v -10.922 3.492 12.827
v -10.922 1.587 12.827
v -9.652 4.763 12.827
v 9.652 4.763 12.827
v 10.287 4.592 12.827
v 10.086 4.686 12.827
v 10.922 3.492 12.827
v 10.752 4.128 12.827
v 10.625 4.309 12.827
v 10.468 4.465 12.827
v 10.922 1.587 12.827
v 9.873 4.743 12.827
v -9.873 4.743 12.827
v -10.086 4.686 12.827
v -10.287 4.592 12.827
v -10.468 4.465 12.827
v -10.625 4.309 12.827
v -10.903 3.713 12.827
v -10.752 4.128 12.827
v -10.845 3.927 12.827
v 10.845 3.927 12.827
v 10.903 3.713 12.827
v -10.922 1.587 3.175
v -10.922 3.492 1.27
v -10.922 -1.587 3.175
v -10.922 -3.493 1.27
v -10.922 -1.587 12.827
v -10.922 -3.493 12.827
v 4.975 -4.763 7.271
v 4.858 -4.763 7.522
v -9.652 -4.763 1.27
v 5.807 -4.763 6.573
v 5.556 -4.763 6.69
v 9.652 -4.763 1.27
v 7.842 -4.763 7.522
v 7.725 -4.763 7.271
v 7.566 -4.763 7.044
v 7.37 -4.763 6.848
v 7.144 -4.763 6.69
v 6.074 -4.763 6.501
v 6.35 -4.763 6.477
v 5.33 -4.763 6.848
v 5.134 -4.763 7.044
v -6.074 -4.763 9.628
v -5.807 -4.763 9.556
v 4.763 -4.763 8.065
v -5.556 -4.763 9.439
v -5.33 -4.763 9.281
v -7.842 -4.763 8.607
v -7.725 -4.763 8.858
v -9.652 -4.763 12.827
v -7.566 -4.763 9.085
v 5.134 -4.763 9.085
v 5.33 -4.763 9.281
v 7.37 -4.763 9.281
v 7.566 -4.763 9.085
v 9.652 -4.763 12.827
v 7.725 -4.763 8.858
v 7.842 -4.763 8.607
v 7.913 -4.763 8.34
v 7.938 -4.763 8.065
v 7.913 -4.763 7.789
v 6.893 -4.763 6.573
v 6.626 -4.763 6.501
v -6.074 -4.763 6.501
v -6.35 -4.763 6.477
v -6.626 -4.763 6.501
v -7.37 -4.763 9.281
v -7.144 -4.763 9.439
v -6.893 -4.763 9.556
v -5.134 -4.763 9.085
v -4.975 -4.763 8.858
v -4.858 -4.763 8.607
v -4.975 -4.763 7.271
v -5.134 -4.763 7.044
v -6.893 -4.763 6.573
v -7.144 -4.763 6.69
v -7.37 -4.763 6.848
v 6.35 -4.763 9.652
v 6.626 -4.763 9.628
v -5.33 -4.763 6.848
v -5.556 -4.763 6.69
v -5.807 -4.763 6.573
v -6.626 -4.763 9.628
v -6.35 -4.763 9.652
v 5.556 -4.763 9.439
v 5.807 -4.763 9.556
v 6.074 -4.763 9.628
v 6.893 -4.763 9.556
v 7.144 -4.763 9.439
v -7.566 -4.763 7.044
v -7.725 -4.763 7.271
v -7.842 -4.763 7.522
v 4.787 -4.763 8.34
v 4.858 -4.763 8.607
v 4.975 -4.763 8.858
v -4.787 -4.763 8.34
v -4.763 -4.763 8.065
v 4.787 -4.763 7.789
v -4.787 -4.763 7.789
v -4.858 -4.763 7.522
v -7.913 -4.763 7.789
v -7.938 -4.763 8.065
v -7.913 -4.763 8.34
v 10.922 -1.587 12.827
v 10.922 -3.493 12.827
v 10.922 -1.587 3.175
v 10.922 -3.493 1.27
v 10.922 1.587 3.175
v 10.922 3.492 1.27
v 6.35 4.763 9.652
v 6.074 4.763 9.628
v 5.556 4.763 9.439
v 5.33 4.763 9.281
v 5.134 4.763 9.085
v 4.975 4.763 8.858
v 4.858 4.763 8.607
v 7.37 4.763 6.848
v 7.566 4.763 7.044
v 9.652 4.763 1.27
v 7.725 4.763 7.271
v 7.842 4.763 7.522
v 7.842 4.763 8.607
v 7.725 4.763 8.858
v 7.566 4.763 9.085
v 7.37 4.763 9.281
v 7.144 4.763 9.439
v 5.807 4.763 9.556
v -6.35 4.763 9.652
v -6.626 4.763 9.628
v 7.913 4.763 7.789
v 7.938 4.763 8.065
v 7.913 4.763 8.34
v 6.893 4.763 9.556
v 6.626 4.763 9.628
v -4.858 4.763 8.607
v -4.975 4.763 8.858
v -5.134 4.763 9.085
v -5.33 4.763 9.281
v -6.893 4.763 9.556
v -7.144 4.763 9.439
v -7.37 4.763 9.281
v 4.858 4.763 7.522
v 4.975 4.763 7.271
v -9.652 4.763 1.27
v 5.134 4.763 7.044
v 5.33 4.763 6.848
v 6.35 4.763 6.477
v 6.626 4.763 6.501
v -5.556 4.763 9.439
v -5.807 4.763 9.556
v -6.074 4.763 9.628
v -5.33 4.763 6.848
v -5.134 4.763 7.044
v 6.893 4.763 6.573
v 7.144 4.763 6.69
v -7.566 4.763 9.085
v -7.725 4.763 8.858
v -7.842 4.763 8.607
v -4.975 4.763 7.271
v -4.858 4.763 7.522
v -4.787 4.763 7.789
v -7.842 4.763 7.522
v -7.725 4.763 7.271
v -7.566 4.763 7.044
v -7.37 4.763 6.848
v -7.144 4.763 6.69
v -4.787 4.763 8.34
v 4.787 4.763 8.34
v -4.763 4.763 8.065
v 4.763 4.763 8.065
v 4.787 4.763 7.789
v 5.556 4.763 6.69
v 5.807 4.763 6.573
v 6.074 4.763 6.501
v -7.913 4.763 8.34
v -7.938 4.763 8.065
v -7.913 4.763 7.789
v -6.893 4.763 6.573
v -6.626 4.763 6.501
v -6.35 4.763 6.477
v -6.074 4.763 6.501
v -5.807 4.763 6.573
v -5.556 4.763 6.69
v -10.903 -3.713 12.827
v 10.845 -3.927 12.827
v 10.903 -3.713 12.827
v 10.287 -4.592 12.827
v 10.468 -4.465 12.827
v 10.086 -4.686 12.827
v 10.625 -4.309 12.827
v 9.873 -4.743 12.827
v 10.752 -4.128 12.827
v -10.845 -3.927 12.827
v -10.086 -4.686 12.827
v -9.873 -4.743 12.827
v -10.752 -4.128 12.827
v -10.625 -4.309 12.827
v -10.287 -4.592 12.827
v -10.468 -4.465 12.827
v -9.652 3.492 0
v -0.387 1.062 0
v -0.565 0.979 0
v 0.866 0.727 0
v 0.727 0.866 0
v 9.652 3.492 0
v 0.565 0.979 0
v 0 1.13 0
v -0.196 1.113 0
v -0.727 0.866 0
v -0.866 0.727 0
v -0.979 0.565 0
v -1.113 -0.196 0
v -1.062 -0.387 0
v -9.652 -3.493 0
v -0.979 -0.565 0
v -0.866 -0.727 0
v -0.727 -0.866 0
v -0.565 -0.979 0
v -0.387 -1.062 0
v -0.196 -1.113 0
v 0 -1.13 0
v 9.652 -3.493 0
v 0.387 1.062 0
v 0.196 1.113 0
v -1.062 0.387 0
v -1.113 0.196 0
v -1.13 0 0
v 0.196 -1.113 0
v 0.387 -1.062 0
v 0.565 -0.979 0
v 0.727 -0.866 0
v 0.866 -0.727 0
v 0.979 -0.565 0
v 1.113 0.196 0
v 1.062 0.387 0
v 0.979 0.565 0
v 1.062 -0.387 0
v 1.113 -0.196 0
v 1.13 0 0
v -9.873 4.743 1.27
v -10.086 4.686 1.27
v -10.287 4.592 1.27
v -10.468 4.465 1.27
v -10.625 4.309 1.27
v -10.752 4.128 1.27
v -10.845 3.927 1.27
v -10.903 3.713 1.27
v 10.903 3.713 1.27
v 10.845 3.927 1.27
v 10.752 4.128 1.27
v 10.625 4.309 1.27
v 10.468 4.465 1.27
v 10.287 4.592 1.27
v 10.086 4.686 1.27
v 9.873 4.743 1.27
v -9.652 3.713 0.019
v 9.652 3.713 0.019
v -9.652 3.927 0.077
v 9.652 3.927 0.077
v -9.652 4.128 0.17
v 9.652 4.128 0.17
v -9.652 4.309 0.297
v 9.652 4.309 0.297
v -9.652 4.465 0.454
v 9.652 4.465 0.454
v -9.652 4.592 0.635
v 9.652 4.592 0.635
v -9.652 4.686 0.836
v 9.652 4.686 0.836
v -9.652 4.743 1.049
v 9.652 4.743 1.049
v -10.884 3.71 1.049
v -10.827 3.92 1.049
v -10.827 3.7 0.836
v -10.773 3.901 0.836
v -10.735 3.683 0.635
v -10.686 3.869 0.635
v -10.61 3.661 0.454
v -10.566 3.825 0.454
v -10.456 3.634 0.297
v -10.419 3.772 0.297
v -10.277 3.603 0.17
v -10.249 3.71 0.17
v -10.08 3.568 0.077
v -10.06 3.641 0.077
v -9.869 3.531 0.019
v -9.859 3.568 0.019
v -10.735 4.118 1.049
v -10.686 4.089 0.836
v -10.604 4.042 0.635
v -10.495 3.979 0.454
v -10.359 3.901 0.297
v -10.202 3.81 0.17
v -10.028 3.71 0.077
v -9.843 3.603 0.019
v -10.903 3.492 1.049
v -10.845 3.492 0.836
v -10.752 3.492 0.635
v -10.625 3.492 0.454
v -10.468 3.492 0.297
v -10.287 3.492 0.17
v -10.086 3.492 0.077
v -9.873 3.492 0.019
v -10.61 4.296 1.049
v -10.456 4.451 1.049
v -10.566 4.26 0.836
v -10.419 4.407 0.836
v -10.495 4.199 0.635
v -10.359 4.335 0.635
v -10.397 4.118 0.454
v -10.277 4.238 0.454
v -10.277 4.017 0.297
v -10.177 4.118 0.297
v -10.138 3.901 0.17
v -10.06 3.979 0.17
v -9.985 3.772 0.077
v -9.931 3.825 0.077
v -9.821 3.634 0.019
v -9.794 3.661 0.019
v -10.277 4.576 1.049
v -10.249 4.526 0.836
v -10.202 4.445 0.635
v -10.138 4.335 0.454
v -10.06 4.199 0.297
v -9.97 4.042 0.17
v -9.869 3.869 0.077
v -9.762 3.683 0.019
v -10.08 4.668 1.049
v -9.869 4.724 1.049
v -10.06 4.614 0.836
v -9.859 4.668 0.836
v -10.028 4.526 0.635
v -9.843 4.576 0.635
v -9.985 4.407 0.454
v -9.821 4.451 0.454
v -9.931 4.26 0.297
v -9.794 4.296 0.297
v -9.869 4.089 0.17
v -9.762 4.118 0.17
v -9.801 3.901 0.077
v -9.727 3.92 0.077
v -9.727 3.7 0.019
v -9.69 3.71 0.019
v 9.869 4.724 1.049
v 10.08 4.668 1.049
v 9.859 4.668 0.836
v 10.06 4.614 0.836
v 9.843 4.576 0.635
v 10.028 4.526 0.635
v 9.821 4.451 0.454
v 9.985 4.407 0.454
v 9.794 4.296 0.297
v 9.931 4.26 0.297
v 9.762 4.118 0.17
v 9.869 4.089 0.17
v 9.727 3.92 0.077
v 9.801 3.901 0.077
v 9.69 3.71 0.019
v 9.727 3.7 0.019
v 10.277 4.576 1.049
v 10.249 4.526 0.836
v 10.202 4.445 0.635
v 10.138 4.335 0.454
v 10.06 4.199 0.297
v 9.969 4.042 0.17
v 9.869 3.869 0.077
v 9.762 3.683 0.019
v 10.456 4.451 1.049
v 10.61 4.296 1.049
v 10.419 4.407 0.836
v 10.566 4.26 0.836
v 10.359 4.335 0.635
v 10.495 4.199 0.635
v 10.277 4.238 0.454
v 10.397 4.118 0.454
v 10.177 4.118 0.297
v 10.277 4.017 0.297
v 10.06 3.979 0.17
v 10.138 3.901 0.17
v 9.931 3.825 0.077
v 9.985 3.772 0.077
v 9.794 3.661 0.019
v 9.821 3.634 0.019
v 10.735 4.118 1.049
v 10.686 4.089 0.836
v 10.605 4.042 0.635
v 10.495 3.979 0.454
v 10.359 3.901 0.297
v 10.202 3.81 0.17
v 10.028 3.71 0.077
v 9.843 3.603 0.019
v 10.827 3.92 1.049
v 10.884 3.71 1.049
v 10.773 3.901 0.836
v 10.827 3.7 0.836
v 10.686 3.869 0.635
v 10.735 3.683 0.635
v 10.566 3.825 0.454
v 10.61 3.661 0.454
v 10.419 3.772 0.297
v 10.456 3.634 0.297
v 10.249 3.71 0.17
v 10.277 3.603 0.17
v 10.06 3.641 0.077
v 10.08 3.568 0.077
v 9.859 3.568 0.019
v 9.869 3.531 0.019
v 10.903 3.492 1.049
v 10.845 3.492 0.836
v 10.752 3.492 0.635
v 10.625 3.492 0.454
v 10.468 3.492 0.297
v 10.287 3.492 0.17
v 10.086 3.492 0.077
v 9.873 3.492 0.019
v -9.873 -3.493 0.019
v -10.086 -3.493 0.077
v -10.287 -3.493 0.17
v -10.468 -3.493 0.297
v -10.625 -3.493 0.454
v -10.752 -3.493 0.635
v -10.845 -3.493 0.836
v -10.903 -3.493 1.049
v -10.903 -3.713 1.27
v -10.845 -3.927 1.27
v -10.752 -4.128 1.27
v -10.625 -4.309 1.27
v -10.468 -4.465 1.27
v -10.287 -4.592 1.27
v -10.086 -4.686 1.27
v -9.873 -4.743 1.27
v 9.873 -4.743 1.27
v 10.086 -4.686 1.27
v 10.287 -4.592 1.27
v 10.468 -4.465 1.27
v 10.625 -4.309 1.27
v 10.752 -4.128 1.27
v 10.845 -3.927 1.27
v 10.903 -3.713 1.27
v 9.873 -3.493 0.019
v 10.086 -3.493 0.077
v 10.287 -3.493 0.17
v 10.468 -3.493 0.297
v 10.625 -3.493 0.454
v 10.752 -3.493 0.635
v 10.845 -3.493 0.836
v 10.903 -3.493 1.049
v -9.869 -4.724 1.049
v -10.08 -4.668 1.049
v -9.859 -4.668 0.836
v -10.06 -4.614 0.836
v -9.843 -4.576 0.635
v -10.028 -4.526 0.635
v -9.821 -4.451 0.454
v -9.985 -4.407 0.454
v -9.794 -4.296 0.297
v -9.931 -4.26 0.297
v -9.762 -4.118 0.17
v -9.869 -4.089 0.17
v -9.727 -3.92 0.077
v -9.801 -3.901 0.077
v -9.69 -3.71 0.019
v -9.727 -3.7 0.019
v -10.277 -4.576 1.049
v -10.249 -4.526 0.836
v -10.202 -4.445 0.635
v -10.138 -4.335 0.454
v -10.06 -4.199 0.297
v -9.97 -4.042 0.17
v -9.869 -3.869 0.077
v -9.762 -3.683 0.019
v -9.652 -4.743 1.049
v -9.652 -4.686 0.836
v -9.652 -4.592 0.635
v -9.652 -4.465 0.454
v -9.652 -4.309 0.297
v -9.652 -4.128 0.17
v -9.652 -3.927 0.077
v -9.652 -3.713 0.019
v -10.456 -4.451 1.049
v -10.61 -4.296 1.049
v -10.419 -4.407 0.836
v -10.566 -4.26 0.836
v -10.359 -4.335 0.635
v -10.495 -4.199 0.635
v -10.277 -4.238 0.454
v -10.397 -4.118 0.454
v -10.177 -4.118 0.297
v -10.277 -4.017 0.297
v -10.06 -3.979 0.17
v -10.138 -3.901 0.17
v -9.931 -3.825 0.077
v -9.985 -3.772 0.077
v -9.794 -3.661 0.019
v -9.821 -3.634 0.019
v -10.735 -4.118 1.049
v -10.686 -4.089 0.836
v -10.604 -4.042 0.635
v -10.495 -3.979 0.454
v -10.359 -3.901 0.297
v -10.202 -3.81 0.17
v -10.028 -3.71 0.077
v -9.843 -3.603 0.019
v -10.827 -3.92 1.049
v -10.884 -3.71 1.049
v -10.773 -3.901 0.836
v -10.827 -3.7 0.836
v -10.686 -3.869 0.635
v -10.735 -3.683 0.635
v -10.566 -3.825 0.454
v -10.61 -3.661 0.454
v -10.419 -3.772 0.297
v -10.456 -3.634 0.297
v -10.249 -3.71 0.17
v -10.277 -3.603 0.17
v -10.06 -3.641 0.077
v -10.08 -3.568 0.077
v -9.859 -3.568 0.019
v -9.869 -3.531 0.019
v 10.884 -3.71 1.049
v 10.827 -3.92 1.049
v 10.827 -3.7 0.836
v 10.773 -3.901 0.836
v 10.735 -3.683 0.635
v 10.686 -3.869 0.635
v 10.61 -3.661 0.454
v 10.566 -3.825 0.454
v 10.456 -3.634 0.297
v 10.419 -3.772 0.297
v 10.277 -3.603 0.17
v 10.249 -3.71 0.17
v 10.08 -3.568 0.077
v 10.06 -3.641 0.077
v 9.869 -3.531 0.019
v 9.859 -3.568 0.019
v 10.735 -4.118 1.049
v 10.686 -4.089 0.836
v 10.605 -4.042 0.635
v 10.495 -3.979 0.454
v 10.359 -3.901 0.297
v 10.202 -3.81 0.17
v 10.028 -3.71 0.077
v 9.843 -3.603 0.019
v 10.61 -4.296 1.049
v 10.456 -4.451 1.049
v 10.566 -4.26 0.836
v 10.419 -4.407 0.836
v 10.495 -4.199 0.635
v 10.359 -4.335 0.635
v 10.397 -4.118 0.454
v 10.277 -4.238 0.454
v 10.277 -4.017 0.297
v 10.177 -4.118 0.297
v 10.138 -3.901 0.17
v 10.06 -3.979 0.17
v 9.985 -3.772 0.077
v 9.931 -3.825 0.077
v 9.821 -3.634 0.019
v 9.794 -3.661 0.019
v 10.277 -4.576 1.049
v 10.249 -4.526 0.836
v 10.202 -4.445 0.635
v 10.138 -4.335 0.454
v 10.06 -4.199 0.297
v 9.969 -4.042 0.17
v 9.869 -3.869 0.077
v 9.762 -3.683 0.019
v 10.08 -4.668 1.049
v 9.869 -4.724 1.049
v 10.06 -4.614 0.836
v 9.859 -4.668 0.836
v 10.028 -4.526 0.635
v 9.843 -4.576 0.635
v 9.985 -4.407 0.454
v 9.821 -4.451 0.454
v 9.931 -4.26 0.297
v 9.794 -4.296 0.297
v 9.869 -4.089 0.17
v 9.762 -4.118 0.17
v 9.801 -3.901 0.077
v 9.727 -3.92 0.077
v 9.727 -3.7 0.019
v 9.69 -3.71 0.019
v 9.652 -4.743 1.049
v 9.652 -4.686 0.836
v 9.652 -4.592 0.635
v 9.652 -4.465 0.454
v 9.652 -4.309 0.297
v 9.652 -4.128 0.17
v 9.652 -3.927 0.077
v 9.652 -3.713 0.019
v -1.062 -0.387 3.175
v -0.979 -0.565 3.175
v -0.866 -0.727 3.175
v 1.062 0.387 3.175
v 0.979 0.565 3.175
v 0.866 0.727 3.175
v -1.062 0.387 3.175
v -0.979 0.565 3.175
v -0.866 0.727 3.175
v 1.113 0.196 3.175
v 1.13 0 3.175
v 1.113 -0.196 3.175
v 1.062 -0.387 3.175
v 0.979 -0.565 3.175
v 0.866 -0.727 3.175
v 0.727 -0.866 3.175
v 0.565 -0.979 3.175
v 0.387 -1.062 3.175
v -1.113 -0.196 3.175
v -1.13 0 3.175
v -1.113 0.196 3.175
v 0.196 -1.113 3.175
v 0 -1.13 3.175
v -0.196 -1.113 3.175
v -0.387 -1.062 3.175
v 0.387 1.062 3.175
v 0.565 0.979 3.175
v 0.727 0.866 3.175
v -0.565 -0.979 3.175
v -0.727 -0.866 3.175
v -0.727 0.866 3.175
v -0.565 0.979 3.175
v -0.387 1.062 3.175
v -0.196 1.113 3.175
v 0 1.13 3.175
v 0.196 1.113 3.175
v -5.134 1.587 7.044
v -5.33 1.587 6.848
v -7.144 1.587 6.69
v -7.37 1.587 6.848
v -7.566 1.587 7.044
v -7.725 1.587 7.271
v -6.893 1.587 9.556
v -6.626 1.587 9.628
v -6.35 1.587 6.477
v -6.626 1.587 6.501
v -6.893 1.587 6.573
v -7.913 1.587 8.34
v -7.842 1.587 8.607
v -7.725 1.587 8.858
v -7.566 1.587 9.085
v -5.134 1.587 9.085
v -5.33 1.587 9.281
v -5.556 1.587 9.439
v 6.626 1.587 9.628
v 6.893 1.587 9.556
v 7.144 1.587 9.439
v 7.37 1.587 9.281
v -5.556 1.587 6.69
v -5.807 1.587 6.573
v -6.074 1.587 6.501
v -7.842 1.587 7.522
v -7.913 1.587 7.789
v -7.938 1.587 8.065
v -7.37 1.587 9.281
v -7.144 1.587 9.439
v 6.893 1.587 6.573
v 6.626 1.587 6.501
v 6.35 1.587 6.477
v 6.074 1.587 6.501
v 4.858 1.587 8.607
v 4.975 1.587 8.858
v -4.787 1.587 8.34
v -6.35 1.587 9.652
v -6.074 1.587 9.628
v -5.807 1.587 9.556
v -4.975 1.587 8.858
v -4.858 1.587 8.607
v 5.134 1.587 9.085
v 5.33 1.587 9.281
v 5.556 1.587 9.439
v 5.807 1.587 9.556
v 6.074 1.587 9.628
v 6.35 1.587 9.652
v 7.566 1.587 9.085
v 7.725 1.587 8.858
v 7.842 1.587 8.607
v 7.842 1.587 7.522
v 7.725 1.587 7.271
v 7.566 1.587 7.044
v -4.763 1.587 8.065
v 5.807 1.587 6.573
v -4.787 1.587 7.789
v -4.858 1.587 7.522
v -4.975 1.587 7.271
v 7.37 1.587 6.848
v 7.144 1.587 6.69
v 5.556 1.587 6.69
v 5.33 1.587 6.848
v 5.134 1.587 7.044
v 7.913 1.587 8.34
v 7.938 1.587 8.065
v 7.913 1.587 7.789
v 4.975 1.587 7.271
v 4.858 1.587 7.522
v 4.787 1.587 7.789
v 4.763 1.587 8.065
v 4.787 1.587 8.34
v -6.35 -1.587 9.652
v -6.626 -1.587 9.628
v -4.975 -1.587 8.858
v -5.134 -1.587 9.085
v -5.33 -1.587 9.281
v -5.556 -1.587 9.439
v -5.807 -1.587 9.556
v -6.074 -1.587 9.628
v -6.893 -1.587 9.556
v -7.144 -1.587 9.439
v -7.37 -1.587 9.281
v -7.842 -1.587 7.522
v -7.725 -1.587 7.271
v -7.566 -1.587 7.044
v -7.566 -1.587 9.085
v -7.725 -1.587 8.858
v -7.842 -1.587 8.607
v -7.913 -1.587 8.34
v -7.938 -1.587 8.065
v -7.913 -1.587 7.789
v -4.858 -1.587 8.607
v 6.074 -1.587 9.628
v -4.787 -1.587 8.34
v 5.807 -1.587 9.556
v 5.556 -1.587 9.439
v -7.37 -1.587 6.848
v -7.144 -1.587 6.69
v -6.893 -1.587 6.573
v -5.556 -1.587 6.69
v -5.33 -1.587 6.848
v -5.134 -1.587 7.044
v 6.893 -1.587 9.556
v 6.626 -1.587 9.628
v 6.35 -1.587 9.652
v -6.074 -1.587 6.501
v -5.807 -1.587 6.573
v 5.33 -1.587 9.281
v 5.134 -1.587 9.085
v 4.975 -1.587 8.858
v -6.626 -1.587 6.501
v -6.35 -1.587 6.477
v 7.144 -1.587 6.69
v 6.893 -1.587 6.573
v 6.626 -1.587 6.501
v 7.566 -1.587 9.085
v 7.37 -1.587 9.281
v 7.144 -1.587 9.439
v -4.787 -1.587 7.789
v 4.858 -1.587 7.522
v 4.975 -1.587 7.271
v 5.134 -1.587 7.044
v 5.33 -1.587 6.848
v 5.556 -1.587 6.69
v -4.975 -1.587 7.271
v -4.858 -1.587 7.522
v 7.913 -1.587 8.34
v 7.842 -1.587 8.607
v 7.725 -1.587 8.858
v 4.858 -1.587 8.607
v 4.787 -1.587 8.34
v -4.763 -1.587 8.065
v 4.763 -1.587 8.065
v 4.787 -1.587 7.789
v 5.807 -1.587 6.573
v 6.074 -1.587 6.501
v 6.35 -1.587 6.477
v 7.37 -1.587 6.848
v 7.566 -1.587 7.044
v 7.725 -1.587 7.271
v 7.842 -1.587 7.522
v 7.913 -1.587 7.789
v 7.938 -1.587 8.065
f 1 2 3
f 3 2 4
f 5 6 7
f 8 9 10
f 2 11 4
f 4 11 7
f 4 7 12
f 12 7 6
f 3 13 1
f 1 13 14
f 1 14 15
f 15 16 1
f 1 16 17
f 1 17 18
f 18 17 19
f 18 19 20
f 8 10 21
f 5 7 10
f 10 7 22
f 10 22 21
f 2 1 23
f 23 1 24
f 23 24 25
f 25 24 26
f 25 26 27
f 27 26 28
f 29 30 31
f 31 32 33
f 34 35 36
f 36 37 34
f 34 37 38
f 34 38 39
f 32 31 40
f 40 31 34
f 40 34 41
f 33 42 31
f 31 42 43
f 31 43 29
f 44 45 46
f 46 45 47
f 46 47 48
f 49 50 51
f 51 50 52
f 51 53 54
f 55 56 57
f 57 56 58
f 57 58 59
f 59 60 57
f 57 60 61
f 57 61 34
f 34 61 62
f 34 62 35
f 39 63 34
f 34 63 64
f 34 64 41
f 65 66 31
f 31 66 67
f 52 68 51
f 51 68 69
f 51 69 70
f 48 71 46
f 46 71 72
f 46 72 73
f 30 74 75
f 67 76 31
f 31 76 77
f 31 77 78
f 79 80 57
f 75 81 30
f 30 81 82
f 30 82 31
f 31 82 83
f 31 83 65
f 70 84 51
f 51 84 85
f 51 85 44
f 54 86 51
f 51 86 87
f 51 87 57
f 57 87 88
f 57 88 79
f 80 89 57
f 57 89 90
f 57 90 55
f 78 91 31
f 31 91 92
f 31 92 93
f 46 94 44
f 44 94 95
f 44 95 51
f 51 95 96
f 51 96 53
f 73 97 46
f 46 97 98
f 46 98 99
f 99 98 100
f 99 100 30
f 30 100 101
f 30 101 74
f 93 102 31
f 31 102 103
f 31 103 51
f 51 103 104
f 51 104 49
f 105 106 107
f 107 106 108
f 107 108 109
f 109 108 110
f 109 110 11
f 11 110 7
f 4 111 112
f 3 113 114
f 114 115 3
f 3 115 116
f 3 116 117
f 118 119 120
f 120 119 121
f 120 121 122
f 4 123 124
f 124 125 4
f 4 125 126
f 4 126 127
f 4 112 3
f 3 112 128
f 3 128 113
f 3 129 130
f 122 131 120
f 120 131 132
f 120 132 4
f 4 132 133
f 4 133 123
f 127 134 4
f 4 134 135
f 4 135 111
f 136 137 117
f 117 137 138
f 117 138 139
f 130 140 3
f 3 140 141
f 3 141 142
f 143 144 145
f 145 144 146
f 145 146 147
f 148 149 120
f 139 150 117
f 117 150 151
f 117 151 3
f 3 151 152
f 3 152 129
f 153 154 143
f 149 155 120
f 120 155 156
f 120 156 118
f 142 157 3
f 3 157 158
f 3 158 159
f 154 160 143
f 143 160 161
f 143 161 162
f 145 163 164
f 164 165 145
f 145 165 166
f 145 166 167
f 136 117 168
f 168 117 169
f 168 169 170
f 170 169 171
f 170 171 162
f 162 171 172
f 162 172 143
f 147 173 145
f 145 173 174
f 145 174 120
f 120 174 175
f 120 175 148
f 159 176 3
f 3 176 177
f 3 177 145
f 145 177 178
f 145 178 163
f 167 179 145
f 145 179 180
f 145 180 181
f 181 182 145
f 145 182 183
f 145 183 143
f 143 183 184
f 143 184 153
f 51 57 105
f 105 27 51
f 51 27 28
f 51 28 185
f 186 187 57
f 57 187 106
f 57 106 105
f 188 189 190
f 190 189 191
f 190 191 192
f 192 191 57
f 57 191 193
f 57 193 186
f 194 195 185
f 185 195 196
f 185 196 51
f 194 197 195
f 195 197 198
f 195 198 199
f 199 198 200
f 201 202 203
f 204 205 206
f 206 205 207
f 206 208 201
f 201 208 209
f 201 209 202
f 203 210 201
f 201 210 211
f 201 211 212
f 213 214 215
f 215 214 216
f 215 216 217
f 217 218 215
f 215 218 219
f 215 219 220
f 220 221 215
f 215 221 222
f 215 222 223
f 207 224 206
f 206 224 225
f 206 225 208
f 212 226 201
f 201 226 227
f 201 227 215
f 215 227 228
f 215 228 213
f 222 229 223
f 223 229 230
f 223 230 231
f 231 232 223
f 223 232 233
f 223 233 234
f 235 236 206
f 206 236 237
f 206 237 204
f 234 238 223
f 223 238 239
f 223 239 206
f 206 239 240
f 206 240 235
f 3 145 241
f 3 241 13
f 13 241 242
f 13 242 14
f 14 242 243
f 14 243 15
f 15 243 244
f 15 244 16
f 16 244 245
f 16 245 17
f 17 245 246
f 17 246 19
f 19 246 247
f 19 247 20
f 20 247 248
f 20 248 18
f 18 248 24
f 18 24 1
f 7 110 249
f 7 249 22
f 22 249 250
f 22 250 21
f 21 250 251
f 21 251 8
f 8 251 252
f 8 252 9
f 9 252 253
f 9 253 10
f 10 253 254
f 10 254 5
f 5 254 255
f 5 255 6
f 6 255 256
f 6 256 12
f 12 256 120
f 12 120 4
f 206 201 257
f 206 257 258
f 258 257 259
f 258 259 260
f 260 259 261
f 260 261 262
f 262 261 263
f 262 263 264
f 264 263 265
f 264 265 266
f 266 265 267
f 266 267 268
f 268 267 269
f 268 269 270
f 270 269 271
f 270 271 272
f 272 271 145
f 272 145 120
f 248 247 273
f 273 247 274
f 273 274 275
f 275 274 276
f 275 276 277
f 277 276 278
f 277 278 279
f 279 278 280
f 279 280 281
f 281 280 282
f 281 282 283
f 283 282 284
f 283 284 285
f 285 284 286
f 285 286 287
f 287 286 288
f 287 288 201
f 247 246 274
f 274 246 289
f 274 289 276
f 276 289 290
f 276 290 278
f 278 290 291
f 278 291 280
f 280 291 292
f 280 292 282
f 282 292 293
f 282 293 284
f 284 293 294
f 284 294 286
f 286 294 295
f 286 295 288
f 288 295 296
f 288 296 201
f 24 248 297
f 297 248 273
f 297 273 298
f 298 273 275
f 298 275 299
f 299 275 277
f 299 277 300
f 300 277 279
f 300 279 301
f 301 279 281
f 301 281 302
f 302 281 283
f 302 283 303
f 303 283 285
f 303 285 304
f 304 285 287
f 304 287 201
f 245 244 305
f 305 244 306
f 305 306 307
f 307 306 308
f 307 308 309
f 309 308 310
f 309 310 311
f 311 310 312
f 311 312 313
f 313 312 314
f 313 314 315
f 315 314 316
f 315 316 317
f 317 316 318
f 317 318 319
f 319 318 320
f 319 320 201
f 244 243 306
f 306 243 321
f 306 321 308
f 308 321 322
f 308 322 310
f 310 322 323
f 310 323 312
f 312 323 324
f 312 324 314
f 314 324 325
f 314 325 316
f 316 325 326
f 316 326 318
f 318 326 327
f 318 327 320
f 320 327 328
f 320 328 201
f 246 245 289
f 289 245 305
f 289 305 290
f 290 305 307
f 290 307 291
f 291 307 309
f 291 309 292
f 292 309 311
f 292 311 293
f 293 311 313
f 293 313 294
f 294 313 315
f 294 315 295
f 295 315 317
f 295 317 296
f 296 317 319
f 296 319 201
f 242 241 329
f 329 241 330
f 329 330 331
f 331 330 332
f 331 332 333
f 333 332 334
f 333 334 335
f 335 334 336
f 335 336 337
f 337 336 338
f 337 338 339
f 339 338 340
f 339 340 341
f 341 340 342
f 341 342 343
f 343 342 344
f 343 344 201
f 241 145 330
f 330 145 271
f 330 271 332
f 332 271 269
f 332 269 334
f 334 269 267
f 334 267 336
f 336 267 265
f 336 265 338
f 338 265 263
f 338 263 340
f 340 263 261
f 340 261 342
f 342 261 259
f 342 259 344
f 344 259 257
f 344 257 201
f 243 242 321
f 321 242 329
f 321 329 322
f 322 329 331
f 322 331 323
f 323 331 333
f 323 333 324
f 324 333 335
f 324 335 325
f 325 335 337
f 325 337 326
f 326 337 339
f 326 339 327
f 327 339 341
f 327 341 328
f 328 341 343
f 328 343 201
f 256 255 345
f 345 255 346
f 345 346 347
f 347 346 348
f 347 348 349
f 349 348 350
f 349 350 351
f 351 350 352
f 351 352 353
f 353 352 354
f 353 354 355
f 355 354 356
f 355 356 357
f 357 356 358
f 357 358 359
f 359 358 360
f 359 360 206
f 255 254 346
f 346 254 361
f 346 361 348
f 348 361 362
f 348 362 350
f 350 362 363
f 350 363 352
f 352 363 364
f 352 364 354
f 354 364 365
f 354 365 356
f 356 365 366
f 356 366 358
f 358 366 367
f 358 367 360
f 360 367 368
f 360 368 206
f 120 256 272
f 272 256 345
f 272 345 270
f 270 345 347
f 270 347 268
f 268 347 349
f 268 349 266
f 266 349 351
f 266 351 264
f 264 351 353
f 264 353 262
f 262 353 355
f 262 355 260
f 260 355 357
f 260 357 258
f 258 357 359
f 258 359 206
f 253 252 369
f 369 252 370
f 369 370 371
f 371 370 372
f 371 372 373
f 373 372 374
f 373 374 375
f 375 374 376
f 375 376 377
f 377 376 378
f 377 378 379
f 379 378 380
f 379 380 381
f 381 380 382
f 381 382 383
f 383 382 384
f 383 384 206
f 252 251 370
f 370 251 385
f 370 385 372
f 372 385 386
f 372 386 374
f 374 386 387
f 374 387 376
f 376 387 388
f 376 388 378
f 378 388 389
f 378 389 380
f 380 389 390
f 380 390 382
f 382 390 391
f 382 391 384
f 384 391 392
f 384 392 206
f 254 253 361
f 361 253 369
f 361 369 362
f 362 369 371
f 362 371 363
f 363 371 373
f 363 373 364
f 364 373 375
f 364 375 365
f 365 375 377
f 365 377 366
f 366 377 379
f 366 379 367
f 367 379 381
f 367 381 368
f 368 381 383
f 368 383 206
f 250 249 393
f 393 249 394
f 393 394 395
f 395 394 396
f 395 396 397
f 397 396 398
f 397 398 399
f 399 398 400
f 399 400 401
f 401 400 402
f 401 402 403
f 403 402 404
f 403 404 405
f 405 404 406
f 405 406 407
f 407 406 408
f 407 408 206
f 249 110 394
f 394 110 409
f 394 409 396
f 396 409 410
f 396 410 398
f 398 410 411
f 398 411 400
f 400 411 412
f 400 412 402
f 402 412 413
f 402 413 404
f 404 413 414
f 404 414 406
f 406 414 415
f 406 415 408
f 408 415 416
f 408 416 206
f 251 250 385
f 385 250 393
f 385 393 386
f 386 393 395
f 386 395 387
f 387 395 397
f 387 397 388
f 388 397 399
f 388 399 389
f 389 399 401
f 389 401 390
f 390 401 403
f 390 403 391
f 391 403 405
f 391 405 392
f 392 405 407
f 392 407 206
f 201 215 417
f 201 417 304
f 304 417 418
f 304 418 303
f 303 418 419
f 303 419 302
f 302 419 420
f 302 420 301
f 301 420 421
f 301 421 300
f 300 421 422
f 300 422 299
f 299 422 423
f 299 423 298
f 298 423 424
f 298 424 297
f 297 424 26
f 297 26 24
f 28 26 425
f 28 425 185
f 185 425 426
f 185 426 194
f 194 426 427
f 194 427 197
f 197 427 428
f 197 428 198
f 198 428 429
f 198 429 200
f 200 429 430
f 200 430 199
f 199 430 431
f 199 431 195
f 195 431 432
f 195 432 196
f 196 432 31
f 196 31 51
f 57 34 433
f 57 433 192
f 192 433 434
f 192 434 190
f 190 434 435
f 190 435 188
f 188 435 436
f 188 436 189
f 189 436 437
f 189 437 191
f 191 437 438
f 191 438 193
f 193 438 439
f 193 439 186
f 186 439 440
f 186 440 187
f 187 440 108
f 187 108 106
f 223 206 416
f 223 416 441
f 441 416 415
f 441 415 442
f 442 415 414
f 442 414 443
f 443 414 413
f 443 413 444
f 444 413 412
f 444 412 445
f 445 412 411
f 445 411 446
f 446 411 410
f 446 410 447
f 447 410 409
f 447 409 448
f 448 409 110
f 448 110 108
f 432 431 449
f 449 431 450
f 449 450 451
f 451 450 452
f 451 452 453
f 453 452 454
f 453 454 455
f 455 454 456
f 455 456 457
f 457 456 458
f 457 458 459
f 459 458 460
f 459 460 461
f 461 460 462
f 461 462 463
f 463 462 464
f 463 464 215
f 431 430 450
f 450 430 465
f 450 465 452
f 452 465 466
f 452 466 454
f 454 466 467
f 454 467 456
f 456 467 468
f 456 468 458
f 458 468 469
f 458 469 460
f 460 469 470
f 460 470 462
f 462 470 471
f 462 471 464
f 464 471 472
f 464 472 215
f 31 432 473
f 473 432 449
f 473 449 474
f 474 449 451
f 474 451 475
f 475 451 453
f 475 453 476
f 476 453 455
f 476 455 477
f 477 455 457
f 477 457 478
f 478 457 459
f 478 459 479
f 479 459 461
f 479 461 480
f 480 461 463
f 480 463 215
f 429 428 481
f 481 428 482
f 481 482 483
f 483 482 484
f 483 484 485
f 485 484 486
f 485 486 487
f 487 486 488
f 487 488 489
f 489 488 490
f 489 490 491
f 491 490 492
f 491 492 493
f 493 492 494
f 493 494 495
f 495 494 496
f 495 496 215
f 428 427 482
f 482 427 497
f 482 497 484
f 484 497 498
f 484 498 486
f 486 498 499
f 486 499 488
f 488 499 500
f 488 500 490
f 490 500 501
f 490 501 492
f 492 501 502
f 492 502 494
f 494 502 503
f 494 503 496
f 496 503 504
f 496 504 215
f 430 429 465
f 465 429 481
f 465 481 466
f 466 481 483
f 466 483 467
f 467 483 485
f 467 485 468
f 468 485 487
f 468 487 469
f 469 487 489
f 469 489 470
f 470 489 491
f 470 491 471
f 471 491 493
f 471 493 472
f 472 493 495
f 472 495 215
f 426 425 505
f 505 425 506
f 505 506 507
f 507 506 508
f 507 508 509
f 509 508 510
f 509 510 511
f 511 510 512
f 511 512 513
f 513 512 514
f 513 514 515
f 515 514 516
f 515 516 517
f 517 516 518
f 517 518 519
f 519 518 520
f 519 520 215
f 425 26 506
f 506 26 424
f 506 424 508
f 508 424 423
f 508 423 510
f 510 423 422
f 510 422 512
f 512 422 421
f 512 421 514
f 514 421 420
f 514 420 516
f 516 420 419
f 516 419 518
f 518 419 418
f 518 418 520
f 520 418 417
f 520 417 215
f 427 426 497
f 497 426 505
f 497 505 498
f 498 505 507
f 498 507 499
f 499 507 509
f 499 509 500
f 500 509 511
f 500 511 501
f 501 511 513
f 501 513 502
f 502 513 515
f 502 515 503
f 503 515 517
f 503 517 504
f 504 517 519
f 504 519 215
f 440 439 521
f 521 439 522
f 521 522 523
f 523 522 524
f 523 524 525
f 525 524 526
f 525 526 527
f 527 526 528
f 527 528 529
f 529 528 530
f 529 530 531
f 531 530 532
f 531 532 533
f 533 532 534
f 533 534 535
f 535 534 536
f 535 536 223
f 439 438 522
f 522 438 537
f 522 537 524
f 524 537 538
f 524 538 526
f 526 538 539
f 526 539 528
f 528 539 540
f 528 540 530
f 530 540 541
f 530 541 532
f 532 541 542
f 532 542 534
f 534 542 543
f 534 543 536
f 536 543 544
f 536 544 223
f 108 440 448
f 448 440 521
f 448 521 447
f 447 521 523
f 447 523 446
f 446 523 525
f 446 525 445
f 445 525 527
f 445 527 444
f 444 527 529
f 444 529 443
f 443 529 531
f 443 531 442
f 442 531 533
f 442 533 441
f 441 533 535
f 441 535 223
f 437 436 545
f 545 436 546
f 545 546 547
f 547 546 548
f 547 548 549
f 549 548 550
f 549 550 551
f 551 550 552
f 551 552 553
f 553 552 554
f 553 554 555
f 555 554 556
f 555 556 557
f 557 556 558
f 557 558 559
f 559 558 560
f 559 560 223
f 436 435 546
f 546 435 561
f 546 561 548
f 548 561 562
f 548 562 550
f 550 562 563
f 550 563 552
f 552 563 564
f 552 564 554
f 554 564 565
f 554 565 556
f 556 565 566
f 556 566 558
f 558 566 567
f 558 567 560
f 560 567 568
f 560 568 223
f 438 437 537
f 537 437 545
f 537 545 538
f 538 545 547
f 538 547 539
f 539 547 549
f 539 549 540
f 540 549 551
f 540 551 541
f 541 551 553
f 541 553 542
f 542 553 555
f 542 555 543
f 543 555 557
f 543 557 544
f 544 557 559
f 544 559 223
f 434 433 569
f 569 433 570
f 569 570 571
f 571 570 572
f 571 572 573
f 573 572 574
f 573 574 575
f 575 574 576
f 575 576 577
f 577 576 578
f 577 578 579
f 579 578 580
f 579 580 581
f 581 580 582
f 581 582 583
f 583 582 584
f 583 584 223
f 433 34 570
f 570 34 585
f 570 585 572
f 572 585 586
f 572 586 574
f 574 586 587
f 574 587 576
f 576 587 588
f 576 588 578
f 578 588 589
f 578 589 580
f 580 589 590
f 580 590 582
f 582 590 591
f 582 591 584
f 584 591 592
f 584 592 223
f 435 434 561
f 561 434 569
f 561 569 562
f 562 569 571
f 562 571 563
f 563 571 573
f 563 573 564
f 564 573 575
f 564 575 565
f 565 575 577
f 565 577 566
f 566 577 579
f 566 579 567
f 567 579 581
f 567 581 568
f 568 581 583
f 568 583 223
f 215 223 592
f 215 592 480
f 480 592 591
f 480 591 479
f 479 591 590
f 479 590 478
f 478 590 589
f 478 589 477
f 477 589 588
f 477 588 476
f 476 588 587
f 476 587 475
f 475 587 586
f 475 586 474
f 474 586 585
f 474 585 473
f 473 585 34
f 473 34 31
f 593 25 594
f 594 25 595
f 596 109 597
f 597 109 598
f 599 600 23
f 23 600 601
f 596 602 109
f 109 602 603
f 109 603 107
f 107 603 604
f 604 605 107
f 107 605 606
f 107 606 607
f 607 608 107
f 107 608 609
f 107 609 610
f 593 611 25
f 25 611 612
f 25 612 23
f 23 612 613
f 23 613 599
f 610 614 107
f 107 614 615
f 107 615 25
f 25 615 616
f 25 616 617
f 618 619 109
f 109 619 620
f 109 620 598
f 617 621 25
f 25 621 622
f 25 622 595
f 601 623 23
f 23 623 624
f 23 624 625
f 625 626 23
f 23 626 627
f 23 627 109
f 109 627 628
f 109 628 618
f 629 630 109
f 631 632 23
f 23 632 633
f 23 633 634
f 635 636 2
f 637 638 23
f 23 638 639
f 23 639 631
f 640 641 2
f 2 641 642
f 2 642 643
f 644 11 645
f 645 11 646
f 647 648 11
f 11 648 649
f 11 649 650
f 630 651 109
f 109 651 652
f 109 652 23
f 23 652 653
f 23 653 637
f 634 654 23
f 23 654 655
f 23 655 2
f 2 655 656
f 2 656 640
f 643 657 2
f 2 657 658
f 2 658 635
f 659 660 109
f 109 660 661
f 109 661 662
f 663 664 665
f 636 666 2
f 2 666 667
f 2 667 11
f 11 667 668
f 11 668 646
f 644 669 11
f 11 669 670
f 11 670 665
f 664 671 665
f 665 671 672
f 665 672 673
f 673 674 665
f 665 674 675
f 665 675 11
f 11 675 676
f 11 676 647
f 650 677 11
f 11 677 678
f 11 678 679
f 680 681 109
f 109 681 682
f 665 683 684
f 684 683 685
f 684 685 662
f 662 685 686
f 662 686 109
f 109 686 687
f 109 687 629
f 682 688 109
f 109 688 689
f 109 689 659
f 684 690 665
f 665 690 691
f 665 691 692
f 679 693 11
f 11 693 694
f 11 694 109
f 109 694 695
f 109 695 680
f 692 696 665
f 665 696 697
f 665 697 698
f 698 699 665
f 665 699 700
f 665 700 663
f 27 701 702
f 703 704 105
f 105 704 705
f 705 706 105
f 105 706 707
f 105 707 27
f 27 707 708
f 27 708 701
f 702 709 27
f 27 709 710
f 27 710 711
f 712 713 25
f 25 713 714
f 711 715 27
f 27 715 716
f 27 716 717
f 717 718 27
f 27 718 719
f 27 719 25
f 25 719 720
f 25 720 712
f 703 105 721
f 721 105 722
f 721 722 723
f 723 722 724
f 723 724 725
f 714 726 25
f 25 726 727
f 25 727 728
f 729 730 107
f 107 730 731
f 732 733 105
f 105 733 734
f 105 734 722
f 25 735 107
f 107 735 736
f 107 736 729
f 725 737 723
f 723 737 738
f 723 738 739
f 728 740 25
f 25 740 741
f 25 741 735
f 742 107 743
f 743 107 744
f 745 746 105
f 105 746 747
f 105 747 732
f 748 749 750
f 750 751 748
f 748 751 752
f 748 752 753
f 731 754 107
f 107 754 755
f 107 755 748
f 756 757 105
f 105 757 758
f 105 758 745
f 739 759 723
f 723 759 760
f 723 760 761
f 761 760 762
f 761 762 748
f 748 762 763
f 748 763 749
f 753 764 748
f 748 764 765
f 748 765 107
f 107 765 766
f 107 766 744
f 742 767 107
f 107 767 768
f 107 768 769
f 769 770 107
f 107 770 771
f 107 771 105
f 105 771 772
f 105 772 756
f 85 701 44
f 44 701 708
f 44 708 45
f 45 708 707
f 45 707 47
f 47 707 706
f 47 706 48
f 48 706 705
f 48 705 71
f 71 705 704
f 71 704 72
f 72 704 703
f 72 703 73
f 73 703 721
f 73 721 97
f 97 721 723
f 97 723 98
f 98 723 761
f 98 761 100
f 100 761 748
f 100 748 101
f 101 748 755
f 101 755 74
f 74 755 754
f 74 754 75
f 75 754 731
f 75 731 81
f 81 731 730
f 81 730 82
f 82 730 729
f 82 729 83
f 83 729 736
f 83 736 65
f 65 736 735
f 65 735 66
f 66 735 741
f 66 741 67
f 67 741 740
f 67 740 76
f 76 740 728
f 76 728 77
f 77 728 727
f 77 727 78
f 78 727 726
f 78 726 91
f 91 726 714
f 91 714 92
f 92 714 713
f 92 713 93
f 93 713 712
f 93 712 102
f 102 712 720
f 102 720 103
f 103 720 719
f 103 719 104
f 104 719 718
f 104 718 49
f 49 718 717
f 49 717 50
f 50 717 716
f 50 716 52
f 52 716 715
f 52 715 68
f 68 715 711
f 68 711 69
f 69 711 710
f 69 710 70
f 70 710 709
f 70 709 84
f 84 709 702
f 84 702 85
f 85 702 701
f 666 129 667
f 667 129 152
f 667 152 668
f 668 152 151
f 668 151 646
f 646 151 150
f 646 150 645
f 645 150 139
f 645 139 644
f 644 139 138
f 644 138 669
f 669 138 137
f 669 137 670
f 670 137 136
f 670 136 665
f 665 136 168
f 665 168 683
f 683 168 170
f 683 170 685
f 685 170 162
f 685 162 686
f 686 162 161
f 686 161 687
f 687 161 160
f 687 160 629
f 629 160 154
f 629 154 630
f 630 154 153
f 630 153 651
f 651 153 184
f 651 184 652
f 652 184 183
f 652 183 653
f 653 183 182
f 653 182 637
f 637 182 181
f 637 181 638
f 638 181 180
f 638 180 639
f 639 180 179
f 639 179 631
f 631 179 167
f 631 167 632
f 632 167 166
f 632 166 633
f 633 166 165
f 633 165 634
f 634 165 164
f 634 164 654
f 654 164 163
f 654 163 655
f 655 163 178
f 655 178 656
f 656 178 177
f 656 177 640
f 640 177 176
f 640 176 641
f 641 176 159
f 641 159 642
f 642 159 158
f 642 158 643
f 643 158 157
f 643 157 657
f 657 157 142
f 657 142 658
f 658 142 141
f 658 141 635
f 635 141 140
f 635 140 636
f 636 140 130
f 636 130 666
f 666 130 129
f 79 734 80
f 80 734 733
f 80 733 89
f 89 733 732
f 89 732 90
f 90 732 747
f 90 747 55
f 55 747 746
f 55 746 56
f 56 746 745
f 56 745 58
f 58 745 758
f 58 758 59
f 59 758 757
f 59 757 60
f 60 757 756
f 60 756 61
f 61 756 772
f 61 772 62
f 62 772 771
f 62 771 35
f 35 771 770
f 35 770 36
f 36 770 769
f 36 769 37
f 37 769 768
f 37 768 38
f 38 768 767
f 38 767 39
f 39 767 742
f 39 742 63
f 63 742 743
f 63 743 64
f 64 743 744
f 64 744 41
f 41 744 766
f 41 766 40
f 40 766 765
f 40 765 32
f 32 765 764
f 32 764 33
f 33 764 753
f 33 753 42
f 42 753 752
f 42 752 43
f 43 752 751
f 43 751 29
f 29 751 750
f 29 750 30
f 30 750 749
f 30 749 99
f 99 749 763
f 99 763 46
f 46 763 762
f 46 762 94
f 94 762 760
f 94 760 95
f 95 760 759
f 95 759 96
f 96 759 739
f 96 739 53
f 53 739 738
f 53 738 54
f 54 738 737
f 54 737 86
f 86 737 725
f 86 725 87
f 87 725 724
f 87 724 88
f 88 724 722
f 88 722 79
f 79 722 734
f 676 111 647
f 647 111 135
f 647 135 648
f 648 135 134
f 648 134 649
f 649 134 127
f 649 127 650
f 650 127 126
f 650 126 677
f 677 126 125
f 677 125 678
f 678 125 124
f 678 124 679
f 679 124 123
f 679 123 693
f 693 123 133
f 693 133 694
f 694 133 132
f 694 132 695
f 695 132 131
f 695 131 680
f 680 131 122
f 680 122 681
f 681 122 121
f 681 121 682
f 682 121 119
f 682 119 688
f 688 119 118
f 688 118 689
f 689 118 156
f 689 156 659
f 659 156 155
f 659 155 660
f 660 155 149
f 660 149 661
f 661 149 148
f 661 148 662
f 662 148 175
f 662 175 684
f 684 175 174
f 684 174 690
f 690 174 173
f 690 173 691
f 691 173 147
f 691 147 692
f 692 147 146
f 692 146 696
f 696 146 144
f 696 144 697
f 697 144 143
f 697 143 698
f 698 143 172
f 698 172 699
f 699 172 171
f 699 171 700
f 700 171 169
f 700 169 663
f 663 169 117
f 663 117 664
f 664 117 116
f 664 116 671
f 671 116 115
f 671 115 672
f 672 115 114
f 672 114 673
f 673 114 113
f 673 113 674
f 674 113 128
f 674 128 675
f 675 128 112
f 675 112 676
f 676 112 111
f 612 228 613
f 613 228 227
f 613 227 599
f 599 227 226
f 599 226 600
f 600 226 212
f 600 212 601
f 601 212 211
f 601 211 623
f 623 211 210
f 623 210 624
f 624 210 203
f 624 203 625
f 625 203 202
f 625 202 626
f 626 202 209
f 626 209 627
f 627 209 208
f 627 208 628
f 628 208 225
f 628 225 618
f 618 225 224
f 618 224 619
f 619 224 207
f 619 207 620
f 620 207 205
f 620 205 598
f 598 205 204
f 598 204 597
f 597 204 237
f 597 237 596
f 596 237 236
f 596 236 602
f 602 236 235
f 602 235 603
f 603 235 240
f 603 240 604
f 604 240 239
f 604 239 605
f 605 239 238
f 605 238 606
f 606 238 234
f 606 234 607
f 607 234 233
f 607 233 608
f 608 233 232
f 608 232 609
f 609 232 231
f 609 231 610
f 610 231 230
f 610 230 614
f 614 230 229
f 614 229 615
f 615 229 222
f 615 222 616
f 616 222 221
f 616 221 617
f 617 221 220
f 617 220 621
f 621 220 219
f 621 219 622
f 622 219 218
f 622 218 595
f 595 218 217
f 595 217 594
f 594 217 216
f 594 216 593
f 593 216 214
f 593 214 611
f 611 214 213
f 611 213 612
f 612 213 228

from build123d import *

# Parameters (mm, degrees)
SKETCH1_W           = 2.0955
SKETCH1_H           = 12.7
SKETCH2_W           = 21.844
SKETCH2_H           = 9.525
BOSS_EXTRUDE1_DEPTH = 12.827
FILLET4_R           = 1.27
SKETCH3_W           = 9.652
SKETCH3_H           = 3.175
CUT_EXTRUDE1_DEPTH  = 22.844
SKETCH4_R           = 1.5875
CUT_EXTRUDE2_DEPTH  = 10.525
CUT_EXTRUDE3_REACH  = 14.827
SKETCH5_R           = 1.1303
SKETCH6_W           = 4.191
SKETCH6_H           = 12.7
CUT_EXTRUDE4_DEPTH  = 10.525


with BuildPart() as part:
    # Sketch1 → Revolve1 (revolve)
    with BuildSketch(Plane(origin=(0, 0, 0), x_dir=(1, 0, 0), z_dir=(0, 1, 0))):
        with Locations((1.04775, 6.35)):
            Rectangle(SKETCH1_W, SKETCH1_H)
    revolve(axis=Axis((0, 0, -12.7), (0, 0, 1)))

    # Sketch2 → Boss-Extrude1 (add)
    with BuildSketch(Plane.XY):
        Rectangle(SKETCH2_W, SKETCH2_H)
    extrude(amount=BOSS_EXTRUDE1_DEPTH)

    # Fillet4
    fillet4_edges = [part.edges().sort_by_distance(p)[0] for p in [
        (10.922, -4.7625, 6.4135),
        (0, 4.7625, 0),
        (10.922, 4.7625, 6.4135),
        (-10.922, 0, 0),
        (-10.922, 4.7625, 6.4135),
        (0, -4.7625, 0),
        (-10.922, -4.7625, 6.4135),
        (10.922, 0, 0),
    ]]
    fillet(fillet4_edges, radius=FILLET4_R)

    # Sketch3 → Cut-Extrude1 (cut, through all)
    with BuildSketch(Plane.ZY.offset(10.922)):
        with Locations((8.001, 0)):
            Rectangle(SKETCH3_W, SKETCH3_H)
    extrude(amount=-CUT_EXTRUDE1_DEPTH, mode=Mode.SUBTRACT)

    # Sketch4 → Cut-Extrude2 (cut, through all)
    with BuildSketch(Plane(origin=(0, 4.7625, 0), x_dir=(1, 0, 0), z_dir=(0, 1, 0))):
        with Locations((-6.35, -8.0645)):
            Circle(SKETCH4_R)
        with Locations((6.35, -8.0645)):
            Circle(SKETCH4_R)
    extrude(amount=-CUT_EXTRUDE2_DEPTH, mode=Mode.SUBTRACT)

    # Sketch5 → Cut-Extrude3 (cut, up to next)
    with BuildSketch(Plane(origin=(0, 0, 0), x_dir=(-1, 0, 0), z_dir=(0, 0, -1)), mode=Mode.PRIVATE) as cut_extrude3_sk1:
        Circle(SKETCH5_R)
    cut_extrude3_tool1 = extrude(cut_extrude3_sk1.sketch, amount=-CUT_EXTRUDE3_REACH, mode=Mode.PRIVATE) & part.part
    add(cut_extrude3_tool1.solids().sort_by_distance((0, 0, 0))[0], mode=Mode.SUBTRACT)

    # Sketch6 → Cut-Extrude4 (cut, through all)
    with BuildSketch(Plane(origin=(0, 4.7625, 0), x_dir=(1, 0, 0), z_dir=(0, 1, 0))):
        with Locations((0, 6.35)):
            Rectangle(SKETCH6_W, SKETCH6_H)
    extrude(amount=-CUT_EXTRUDE4_DEPTH, mode=Mode.SUBTRACT)


solid = part.part
